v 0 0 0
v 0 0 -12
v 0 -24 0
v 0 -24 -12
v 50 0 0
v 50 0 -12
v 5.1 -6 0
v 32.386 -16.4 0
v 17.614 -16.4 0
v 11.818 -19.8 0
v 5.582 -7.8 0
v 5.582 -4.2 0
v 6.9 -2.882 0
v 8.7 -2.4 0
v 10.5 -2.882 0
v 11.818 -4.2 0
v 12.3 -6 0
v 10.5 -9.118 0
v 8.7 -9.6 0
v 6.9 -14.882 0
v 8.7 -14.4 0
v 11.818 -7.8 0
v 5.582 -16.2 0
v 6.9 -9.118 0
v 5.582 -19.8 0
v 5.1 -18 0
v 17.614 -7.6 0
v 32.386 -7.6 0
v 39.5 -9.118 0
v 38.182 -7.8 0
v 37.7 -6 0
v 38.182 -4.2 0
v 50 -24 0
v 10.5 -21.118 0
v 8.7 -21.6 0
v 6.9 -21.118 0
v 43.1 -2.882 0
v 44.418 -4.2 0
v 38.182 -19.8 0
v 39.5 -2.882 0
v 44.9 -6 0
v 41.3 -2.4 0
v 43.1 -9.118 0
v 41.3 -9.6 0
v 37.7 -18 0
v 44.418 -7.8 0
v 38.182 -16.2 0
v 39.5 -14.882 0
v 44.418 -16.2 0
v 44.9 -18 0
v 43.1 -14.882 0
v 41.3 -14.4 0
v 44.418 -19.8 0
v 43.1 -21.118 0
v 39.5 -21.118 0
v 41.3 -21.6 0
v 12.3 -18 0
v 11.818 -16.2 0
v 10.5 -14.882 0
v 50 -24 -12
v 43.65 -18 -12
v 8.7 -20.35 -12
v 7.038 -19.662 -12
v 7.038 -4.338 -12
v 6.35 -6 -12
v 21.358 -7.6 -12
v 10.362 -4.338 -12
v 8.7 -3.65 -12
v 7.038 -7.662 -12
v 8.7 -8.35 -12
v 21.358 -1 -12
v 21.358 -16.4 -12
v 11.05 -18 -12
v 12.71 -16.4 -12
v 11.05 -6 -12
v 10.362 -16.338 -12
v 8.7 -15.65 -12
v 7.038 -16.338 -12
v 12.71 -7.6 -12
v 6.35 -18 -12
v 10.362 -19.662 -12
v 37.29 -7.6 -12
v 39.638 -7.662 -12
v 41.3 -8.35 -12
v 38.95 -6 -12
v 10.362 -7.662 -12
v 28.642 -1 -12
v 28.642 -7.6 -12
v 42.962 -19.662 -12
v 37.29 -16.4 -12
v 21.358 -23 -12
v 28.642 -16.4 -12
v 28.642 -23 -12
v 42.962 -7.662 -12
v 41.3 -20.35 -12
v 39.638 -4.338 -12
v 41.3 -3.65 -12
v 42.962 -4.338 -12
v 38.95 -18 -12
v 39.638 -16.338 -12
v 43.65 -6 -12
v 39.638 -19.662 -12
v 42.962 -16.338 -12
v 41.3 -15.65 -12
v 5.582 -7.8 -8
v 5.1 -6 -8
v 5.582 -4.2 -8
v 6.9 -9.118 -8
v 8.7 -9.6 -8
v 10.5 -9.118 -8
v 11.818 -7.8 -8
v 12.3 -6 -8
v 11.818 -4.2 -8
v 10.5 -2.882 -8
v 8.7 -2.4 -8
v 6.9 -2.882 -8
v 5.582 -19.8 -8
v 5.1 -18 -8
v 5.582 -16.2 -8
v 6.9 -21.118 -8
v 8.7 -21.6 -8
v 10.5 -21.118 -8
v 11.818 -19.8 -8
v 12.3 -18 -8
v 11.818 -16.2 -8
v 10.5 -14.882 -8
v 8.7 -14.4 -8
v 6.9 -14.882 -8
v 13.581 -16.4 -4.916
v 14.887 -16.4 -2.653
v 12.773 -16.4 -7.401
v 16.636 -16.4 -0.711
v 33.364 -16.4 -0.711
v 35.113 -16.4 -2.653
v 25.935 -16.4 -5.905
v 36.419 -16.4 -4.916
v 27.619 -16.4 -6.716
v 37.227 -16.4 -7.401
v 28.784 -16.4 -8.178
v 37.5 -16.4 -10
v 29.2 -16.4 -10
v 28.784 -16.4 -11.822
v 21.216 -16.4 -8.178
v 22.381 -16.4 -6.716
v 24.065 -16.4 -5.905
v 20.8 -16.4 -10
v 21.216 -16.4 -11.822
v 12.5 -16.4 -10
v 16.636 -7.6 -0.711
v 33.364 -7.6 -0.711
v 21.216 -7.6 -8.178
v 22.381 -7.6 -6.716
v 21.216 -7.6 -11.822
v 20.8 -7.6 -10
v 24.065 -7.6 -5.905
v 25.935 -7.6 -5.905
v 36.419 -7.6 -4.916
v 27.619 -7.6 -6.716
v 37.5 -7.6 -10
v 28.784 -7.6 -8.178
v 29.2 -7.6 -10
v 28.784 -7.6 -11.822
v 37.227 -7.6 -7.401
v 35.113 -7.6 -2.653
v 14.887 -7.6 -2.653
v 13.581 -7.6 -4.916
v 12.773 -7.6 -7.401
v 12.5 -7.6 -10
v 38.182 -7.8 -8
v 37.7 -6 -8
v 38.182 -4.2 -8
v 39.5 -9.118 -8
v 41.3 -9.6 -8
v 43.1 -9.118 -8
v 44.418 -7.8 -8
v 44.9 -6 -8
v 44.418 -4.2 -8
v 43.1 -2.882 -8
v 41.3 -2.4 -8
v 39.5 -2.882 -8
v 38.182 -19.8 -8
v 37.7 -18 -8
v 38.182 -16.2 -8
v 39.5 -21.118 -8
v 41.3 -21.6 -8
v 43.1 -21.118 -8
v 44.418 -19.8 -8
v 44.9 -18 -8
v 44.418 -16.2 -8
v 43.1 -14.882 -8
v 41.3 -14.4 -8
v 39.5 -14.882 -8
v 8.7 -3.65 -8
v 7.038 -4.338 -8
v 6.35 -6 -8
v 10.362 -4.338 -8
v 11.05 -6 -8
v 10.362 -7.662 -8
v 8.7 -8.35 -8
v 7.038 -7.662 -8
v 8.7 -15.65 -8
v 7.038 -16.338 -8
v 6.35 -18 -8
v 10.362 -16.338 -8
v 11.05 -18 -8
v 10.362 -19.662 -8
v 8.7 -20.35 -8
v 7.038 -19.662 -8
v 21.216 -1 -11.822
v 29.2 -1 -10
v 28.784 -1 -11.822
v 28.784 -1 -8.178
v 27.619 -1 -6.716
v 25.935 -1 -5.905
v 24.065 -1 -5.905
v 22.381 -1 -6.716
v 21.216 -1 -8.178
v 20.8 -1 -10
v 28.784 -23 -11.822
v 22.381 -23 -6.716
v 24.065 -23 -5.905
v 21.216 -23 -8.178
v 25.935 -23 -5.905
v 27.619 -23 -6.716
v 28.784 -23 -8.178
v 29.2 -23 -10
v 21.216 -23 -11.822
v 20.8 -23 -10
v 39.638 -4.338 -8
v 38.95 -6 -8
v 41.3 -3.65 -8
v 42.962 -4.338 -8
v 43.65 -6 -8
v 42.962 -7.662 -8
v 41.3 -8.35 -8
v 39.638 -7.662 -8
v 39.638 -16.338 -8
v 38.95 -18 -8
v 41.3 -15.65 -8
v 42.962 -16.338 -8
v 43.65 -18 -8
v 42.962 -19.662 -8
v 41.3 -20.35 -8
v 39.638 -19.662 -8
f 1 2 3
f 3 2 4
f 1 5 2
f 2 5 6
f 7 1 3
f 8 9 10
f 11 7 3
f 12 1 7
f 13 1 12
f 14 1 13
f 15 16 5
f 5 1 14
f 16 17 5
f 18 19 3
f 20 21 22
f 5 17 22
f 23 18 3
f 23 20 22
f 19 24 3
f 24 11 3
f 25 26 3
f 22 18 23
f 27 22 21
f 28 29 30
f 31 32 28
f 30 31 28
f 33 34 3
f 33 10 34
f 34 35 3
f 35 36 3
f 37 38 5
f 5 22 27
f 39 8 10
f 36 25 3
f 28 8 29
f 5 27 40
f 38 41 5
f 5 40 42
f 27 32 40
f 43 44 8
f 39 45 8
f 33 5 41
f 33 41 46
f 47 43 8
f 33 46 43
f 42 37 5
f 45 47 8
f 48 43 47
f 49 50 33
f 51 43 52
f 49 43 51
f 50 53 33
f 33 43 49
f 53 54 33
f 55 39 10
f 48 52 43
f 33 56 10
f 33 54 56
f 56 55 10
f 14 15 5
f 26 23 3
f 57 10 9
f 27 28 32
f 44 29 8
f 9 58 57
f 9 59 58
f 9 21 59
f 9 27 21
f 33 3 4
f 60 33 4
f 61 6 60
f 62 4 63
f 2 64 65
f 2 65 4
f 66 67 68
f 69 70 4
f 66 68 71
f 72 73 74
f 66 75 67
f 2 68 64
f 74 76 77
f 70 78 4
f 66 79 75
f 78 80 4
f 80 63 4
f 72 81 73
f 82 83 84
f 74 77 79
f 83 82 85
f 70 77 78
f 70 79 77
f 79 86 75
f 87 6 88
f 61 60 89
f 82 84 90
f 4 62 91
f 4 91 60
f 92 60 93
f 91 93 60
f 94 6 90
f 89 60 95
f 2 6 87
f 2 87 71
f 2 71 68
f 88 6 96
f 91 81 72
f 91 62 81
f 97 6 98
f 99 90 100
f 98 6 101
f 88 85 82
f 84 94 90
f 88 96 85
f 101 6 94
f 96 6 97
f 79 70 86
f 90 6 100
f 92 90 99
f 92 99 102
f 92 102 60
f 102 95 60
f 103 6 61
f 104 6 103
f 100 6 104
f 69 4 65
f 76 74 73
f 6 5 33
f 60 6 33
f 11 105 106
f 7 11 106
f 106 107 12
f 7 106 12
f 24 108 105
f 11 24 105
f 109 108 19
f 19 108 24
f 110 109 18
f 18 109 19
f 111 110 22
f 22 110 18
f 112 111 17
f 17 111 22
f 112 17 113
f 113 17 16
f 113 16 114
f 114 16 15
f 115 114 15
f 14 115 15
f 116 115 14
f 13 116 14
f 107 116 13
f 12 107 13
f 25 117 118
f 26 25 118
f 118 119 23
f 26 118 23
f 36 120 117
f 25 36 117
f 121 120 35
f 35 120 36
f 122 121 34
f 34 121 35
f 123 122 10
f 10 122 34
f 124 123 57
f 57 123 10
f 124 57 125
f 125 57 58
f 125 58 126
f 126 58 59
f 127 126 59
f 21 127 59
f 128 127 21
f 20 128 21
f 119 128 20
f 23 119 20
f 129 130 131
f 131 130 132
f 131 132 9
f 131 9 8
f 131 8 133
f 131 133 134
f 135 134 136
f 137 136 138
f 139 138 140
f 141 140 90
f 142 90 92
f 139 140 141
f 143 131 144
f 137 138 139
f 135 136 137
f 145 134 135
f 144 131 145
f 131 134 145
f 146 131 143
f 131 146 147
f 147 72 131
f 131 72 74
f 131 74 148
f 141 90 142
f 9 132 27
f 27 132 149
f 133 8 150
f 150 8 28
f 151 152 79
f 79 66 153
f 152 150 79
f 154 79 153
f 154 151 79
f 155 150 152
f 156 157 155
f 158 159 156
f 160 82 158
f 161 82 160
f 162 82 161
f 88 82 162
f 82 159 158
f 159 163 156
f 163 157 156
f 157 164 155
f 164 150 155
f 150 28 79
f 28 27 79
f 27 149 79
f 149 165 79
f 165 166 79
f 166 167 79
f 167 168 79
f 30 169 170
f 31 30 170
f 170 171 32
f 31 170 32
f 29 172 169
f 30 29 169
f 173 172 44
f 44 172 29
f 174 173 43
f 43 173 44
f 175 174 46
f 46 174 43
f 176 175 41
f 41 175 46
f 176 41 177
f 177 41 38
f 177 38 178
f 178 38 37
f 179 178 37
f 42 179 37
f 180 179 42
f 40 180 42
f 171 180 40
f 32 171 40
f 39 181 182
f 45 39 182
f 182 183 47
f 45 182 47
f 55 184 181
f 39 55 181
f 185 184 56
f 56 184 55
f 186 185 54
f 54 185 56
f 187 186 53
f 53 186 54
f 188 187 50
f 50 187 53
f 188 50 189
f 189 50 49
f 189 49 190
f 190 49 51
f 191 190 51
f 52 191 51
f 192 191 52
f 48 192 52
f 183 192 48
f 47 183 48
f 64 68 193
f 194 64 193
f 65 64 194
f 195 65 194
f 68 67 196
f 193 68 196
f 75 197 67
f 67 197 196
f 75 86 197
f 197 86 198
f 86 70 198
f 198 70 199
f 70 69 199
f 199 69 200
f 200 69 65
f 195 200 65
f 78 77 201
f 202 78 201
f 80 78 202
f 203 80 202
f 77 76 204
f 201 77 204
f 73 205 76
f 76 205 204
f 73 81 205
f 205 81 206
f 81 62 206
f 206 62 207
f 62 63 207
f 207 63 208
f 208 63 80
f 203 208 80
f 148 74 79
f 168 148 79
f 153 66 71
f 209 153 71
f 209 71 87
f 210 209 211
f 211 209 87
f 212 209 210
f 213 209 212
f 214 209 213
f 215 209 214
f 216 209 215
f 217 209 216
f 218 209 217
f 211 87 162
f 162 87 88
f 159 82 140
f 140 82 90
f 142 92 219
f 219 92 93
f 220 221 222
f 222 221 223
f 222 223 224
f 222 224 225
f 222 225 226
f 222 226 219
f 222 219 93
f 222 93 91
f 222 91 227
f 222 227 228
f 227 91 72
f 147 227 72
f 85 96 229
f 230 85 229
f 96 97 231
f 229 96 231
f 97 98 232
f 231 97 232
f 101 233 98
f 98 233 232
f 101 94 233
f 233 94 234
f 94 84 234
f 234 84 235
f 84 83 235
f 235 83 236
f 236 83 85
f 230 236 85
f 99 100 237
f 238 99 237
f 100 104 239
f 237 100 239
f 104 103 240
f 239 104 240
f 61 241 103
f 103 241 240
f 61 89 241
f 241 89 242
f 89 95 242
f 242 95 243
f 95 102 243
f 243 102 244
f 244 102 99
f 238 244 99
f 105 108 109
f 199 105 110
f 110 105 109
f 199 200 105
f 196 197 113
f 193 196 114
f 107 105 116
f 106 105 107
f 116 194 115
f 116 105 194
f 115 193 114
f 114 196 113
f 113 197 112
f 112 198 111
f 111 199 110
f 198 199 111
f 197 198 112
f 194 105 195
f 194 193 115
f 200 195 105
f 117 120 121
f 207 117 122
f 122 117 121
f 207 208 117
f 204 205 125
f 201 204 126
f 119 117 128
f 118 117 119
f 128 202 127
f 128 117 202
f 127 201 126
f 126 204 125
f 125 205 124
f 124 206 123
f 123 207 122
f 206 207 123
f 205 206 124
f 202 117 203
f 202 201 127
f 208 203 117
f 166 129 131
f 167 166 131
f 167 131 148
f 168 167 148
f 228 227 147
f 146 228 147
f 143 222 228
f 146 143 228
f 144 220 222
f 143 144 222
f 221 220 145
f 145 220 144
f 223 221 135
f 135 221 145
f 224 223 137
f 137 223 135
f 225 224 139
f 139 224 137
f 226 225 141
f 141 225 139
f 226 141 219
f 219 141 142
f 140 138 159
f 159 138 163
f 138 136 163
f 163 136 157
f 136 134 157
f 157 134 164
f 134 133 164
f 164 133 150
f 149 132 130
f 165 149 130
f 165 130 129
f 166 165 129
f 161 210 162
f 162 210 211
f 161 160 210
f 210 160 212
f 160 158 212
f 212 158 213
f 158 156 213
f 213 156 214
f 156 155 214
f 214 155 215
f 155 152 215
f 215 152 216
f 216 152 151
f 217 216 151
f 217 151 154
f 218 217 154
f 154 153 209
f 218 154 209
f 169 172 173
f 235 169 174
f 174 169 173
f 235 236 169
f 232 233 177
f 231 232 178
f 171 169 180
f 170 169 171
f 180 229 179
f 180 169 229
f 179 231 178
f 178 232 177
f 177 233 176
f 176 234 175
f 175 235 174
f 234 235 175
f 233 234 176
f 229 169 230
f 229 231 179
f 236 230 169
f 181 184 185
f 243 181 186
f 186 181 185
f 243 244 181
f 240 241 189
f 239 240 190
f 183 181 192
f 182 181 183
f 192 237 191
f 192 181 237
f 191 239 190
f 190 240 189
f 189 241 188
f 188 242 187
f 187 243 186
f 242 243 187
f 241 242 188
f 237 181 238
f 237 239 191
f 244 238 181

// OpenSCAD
// file: shapes.scad
include <MCAD/units.scad>;
use <MCAD/triangles.scad>;


module basic_triangle(o_len, a_len, depth, center=false)
{
    triangle(o_len, a_len, depth, center);
}


module pyramid(x, y, z=0, clip_height=0) {
  z = z ? z : sqrt(pow(x, 2) + pow(y, 2))/2; 
	mx = x/2;
	my = y/2;

  difference(){
    polyhedron(points = [
      [0,  0,  0],
      [x,  0,  0],
      [0,  y,  0],
      [x,  y,  0],
      [mx, my, z]
    ], faces = [
      [4, 1, 0],
      [4, 3, 1],
      [4, 2, 3],
      [4, 0, 2],
      //base
      [0, 1, 2],
      [2, 1, 3]
    ]);

    if (clip_height > 0){
        translate([0, 0, clip_height-epsilon])
          cube([x, y, z]);
    }
  }
}
// main file
// (c) 2011 by Joachim Glauche
// License: GPLv3


include <shapes.scad>

bolt_dia=4.7;
bot_hex=7.5;
distance=32.6;
distance2=12;
length=50;

bearing_dia=25;
bearing_height=8.8;
bearing_shaft_dia=8.4;
spring_dia=7.2; 


rotate(a=180,v=[1,0,0]){
difference(){

cube(size=[length,24, 12]);

translate(v=[(length-distance)/2 ,6,0]) cylinder(r=bolt_dia/2,h=30);	
translate(v=[(length-distance)/2,6,-4]) cylinder(r=spring_dia/2,h=12);	

translate(v=[(length-distance)/2+distance,6,0]) cylinder(r=bolt_dia/2,h=30);	
translate(v=[(length-distance)/2+distance,6,-4]) cylinder(r=spring_dia/2,h=12);	

translate(v=[0,12,0]){
translate(v=[(length-distance)/2 ,6,0]) cylinder(r=bolt_dia/2,h=30);	
translate(v=[(length-distance)/2,6,-4]) cylinder(r=spring_dia/2,h=12);	

translate(v=[(length-distance)/2+distance,6,0]) cylinder(r=bolt_dia/2,h=30);	
#translate(v=[(length-distance)/2+distance,6,-4]) cylinder(r=spring_dia/2,h=12);	

}



#rotate(a=90,v=[1,0,0])  translate(v=[length/2,10,-12-bearing_height/2]) cylinder(r=bearing_dia/2, h=bearing_height);
#rotate(a=90,v=[1,0,0])  translate(v=[length/2, 10,-23]) cylinder(r=bearing_shaft_dia/2, h=22);


}
}
